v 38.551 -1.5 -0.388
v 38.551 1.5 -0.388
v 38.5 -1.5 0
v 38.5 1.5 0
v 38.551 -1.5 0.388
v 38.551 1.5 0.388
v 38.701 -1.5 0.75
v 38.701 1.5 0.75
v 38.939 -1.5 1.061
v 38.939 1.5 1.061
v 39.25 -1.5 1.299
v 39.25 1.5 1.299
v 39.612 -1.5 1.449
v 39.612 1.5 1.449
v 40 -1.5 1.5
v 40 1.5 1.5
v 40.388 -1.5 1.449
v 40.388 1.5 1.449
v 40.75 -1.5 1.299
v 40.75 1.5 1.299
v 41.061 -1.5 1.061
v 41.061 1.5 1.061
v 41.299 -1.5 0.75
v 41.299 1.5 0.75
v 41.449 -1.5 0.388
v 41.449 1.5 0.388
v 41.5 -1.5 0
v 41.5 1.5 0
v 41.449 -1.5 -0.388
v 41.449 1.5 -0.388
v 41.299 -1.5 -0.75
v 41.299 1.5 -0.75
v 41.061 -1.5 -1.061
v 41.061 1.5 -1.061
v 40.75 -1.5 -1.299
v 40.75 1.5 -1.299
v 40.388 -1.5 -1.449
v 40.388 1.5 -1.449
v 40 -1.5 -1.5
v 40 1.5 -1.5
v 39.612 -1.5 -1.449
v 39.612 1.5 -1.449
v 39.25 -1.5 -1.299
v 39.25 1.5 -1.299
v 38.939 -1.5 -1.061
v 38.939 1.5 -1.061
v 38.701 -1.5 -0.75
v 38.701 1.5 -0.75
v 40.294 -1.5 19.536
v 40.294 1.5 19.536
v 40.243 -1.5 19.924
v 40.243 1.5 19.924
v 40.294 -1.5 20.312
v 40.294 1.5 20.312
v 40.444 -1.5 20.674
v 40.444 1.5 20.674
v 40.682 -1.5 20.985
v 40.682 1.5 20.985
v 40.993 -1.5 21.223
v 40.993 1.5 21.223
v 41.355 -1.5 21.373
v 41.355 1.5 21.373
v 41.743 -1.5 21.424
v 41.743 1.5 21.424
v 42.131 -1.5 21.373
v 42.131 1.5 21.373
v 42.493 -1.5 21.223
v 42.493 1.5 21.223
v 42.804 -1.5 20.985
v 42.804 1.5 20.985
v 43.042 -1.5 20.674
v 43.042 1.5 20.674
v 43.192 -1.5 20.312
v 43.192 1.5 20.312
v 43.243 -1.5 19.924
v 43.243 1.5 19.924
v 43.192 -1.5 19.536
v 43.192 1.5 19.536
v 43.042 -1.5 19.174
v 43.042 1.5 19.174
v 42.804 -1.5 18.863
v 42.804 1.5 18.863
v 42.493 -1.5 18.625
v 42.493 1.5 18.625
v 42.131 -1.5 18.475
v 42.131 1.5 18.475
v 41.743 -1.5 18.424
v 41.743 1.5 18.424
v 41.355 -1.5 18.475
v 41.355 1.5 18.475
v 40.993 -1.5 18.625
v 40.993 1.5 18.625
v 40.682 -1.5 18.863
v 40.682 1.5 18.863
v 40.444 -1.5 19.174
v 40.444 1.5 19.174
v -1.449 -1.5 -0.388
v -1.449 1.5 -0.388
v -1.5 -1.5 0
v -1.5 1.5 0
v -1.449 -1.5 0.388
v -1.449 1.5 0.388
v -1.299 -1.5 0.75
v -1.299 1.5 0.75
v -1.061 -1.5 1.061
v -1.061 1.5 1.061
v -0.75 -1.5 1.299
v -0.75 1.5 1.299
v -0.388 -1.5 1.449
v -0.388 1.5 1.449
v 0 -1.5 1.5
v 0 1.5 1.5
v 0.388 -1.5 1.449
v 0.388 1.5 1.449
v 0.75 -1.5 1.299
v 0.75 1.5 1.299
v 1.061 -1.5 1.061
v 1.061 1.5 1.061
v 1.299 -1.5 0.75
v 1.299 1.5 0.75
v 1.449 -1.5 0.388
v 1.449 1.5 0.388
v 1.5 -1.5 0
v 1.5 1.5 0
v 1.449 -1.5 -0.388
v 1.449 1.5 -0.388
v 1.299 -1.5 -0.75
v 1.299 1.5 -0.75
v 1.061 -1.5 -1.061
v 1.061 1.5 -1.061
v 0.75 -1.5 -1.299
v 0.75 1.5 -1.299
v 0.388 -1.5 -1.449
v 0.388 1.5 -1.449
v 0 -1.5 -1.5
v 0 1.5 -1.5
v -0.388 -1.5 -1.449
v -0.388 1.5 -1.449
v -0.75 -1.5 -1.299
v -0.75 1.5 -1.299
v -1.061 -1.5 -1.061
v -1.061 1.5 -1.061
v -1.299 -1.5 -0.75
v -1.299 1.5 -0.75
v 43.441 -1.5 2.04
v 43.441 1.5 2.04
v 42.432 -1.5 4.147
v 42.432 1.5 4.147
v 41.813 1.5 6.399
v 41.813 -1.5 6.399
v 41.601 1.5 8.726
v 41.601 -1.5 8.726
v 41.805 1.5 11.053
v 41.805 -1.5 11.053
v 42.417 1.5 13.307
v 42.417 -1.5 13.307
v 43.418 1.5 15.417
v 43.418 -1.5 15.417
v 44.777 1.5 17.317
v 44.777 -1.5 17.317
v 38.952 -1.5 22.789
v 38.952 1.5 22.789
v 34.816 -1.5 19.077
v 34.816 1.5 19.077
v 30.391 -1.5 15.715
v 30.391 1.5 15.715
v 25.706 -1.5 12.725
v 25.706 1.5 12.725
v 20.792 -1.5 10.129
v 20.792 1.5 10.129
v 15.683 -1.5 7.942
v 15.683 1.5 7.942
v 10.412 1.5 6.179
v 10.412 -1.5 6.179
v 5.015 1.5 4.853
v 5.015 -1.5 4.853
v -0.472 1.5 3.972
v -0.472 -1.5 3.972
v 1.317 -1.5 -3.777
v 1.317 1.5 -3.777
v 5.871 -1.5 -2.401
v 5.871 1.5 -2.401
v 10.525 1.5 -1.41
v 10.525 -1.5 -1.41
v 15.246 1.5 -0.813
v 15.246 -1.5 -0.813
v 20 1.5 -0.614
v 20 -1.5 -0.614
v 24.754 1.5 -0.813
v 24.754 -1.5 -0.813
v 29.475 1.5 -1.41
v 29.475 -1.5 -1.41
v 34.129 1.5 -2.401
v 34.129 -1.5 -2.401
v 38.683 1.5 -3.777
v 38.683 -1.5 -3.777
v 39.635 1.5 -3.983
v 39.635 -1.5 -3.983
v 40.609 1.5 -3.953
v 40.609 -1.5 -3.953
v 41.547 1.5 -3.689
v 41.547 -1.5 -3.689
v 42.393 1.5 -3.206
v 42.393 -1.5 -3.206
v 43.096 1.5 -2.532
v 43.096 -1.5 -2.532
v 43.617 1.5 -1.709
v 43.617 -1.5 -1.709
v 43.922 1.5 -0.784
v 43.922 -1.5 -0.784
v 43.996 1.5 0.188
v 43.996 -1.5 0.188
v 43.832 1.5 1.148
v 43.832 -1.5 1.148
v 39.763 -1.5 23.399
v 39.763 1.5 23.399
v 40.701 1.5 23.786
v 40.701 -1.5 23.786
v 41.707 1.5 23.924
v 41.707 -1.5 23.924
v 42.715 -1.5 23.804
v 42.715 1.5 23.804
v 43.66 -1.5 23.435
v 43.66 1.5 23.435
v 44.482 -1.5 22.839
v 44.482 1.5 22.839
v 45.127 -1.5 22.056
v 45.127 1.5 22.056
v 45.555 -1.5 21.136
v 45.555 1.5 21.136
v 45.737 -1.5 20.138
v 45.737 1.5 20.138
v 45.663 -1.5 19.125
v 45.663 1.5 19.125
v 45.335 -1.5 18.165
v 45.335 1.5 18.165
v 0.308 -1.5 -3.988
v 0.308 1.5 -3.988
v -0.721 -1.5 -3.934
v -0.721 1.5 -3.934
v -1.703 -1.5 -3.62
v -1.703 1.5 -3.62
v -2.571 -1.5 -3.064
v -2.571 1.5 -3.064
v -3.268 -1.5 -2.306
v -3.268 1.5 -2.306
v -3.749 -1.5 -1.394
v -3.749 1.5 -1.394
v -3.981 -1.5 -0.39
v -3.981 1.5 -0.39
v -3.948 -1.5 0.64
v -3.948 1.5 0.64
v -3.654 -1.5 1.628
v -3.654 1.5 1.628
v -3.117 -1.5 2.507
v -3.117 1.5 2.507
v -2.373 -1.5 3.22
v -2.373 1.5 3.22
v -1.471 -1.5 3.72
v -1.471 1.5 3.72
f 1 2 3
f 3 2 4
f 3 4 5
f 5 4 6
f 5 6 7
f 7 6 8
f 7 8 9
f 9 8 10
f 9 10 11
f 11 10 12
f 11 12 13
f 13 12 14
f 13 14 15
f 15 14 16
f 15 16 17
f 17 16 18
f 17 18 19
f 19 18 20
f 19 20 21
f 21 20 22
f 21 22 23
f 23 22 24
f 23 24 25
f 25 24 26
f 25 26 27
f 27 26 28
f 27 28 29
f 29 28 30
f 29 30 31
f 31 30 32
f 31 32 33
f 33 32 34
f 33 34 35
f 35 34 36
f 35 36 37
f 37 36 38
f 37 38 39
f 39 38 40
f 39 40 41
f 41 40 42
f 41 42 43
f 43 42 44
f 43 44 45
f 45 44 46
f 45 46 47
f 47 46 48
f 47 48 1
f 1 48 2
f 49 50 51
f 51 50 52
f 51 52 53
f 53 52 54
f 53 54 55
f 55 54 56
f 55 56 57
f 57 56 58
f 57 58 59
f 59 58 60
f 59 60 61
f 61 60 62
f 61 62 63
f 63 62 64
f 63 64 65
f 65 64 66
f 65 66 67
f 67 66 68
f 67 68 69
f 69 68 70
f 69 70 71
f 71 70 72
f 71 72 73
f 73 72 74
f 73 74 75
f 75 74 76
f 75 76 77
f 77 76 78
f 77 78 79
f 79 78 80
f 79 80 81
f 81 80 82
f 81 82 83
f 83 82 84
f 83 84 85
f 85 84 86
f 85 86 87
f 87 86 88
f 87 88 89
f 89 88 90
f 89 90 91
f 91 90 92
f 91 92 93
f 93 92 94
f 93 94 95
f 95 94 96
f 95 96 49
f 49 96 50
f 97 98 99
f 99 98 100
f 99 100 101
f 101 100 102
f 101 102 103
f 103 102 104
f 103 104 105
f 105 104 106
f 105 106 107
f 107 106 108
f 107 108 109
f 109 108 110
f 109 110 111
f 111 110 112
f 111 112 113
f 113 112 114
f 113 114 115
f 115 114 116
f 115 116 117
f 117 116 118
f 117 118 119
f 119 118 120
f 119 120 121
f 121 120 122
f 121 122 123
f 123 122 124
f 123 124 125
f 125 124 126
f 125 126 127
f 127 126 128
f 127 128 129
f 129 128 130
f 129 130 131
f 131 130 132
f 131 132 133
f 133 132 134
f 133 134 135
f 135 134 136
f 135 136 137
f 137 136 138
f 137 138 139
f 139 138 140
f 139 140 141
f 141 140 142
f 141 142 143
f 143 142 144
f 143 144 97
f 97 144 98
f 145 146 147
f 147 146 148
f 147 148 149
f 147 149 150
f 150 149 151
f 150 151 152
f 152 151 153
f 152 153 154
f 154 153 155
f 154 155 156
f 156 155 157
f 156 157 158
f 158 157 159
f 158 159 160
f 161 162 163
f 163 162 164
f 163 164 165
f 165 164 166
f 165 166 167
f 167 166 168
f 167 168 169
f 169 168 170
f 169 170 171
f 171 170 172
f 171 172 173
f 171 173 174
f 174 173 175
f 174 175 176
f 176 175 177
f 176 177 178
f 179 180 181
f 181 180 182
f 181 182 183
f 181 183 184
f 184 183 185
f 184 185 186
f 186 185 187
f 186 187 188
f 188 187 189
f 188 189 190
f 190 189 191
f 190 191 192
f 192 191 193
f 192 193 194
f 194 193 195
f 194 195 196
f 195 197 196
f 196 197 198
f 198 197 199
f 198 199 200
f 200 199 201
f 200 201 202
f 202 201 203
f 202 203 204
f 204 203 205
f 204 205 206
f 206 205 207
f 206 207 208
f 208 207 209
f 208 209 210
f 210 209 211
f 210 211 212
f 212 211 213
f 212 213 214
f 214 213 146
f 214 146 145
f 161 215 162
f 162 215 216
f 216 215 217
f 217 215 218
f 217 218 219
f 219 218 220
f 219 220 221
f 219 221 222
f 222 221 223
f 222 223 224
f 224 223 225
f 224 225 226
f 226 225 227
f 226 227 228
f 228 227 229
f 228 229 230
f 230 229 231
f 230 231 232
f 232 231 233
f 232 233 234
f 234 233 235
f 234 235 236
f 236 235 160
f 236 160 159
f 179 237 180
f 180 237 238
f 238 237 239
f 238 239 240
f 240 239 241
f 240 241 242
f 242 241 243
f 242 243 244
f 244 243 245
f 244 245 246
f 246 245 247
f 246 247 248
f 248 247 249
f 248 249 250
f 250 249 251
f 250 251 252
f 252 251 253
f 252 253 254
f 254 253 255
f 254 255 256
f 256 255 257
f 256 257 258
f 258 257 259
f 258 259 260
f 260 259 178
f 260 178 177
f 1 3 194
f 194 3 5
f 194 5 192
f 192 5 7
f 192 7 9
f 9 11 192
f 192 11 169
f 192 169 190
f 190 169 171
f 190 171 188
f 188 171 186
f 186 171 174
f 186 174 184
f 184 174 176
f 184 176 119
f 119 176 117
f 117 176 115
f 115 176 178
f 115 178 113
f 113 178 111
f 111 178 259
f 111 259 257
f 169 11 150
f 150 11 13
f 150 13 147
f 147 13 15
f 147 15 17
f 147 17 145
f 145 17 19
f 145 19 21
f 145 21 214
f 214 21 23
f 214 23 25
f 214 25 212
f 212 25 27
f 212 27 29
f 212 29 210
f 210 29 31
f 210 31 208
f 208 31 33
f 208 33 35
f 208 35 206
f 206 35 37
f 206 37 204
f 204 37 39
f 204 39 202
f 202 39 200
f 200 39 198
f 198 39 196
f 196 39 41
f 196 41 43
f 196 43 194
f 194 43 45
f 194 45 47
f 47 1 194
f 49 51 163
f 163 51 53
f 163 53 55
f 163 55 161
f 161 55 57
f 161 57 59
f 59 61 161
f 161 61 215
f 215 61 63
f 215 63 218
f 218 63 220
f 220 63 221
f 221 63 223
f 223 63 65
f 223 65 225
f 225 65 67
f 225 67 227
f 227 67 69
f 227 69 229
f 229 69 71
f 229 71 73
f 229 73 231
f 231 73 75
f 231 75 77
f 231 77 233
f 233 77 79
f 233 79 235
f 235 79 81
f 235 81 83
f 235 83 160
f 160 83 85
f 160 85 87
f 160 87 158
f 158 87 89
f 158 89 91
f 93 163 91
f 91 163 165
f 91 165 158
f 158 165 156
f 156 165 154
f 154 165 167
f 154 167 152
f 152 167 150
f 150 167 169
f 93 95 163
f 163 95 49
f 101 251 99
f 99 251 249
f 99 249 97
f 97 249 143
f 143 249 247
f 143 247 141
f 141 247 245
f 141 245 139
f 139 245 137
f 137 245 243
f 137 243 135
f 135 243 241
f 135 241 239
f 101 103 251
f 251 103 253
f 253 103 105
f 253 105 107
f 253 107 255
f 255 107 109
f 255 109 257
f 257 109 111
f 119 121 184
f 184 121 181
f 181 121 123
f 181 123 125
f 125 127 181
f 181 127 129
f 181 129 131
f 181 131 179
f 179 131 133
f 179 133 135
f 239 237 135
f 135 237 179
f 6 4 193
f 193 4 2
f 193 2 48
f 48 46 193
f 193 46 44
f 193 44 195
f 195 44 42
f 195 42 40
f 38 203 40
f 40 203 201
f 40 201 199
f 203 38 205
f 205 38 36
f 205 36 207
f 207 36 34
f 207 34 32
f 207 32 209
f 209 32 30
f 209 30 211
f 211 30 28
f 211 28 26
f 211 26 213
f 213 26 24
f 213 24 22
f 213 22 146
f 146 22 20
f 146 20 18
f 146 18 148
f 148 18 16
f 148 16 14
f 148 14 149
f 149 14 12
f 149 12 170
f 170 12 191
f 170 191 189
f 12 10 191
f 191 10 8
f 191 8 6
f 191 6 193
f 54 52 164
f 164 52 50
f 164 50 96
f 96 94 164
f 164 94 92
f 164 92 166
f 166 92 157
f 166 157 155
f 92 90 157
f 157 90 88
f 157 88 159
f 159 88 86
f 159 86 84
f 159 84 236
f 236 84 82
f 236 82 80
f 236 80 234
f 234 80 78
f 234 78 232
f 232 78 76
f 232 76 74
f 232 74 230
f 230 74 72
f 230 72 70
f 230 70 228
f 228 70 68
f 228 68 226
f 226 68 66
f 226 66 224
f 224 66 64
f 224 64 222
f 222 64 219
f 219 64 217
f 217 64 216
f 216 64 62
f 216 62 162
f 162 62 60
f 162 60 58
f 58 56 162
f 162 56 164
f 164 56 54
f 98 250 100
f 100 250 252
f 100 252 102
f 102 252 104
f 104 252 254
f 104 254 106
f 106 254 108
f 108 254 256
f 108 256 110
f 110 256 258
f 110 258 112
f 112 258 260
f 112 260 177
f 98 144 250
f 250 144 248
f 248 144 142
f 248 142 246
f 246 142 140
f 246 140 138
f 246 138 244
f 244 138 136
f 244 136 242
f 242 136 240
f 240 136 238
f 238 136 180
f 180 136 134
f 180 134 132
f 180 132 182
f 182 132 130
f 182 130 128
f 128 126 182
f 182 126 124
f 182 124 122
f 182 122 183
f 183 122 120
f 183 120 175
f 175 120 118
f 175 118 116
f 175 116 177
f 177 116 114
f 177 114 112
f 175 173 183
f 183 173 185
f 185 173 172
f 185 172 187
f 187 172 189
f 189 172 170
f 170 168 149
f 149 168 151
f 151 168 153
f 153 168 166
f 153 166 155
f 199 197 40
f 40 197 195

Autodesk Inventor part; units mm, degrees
ref_plane "YZ Plane" through (0, 0, 0) normal (1, 0, 0) x (0, 1, 0)
ref_plane "XZ Plane" through (0, 0, 0) normal (0, 1, 0) x (-1, 0, 0)
ref_plane "XY Plane" through (0, 0, 0) normal (0, 0, 1) x (1, 0, 0)
sketch "草圖1" plane through (0, 0, 0) normal (0, 1, 0) x (-1, 0, 0)
  circle A0 centre (0, 0) radius 1.5
  line L0 (0, 0) -> (-40, 0)
  circle A1 centre (-40, 0) radius 1.5
  line L1 (-40, 0) -> (-41.7431, 19.9239)
  circle A2 centre (-41.7431, 19.9239) radius 1.5
  circle A3 centre (0, 0) radius 4
  circle A4 centre (-40, 0) radius 4
  circle A5 centre (-41.7431, 19.9239) radius 4
  arc A6 (-43.4405, 2.0403) -> (-44.7771, 17.3172) centre (-54.7513, 8.7476) ccw
  arc A7 (-1.3167, -3.7771) -> (-38.6833, -3.7771) centre (-20, -57.374) ccw
  arc A8 (-38.9519, 22.789) -> (0.4722, 3.972) centre (8.4988, 71.4966) ccw
  dimension "d0" = 3
  dimension "d1" = 40
  dimension "d2" = 3
  dimension "d3" = 95
  dimension "d4" = 20
  dimension "d5" = 3
  dimension "d6" = 8
  dimension "d7" = 8
  dimension "d8" = 8
  dimension "d9" = 13.15
  dimension "d10" = 56.76
  dimension "d11" = 68
extrude "擠出1" add sketch "草圖1" along normal mid plane 3 contours A3 | A3 A7 A4 L0 | L0 A4 L1 A5 A8 A3 | A4 L1 A1 L0 | L0 A1 L1 A4 | A4 A6 A5 L1 | A5
properties part number "連接2"
